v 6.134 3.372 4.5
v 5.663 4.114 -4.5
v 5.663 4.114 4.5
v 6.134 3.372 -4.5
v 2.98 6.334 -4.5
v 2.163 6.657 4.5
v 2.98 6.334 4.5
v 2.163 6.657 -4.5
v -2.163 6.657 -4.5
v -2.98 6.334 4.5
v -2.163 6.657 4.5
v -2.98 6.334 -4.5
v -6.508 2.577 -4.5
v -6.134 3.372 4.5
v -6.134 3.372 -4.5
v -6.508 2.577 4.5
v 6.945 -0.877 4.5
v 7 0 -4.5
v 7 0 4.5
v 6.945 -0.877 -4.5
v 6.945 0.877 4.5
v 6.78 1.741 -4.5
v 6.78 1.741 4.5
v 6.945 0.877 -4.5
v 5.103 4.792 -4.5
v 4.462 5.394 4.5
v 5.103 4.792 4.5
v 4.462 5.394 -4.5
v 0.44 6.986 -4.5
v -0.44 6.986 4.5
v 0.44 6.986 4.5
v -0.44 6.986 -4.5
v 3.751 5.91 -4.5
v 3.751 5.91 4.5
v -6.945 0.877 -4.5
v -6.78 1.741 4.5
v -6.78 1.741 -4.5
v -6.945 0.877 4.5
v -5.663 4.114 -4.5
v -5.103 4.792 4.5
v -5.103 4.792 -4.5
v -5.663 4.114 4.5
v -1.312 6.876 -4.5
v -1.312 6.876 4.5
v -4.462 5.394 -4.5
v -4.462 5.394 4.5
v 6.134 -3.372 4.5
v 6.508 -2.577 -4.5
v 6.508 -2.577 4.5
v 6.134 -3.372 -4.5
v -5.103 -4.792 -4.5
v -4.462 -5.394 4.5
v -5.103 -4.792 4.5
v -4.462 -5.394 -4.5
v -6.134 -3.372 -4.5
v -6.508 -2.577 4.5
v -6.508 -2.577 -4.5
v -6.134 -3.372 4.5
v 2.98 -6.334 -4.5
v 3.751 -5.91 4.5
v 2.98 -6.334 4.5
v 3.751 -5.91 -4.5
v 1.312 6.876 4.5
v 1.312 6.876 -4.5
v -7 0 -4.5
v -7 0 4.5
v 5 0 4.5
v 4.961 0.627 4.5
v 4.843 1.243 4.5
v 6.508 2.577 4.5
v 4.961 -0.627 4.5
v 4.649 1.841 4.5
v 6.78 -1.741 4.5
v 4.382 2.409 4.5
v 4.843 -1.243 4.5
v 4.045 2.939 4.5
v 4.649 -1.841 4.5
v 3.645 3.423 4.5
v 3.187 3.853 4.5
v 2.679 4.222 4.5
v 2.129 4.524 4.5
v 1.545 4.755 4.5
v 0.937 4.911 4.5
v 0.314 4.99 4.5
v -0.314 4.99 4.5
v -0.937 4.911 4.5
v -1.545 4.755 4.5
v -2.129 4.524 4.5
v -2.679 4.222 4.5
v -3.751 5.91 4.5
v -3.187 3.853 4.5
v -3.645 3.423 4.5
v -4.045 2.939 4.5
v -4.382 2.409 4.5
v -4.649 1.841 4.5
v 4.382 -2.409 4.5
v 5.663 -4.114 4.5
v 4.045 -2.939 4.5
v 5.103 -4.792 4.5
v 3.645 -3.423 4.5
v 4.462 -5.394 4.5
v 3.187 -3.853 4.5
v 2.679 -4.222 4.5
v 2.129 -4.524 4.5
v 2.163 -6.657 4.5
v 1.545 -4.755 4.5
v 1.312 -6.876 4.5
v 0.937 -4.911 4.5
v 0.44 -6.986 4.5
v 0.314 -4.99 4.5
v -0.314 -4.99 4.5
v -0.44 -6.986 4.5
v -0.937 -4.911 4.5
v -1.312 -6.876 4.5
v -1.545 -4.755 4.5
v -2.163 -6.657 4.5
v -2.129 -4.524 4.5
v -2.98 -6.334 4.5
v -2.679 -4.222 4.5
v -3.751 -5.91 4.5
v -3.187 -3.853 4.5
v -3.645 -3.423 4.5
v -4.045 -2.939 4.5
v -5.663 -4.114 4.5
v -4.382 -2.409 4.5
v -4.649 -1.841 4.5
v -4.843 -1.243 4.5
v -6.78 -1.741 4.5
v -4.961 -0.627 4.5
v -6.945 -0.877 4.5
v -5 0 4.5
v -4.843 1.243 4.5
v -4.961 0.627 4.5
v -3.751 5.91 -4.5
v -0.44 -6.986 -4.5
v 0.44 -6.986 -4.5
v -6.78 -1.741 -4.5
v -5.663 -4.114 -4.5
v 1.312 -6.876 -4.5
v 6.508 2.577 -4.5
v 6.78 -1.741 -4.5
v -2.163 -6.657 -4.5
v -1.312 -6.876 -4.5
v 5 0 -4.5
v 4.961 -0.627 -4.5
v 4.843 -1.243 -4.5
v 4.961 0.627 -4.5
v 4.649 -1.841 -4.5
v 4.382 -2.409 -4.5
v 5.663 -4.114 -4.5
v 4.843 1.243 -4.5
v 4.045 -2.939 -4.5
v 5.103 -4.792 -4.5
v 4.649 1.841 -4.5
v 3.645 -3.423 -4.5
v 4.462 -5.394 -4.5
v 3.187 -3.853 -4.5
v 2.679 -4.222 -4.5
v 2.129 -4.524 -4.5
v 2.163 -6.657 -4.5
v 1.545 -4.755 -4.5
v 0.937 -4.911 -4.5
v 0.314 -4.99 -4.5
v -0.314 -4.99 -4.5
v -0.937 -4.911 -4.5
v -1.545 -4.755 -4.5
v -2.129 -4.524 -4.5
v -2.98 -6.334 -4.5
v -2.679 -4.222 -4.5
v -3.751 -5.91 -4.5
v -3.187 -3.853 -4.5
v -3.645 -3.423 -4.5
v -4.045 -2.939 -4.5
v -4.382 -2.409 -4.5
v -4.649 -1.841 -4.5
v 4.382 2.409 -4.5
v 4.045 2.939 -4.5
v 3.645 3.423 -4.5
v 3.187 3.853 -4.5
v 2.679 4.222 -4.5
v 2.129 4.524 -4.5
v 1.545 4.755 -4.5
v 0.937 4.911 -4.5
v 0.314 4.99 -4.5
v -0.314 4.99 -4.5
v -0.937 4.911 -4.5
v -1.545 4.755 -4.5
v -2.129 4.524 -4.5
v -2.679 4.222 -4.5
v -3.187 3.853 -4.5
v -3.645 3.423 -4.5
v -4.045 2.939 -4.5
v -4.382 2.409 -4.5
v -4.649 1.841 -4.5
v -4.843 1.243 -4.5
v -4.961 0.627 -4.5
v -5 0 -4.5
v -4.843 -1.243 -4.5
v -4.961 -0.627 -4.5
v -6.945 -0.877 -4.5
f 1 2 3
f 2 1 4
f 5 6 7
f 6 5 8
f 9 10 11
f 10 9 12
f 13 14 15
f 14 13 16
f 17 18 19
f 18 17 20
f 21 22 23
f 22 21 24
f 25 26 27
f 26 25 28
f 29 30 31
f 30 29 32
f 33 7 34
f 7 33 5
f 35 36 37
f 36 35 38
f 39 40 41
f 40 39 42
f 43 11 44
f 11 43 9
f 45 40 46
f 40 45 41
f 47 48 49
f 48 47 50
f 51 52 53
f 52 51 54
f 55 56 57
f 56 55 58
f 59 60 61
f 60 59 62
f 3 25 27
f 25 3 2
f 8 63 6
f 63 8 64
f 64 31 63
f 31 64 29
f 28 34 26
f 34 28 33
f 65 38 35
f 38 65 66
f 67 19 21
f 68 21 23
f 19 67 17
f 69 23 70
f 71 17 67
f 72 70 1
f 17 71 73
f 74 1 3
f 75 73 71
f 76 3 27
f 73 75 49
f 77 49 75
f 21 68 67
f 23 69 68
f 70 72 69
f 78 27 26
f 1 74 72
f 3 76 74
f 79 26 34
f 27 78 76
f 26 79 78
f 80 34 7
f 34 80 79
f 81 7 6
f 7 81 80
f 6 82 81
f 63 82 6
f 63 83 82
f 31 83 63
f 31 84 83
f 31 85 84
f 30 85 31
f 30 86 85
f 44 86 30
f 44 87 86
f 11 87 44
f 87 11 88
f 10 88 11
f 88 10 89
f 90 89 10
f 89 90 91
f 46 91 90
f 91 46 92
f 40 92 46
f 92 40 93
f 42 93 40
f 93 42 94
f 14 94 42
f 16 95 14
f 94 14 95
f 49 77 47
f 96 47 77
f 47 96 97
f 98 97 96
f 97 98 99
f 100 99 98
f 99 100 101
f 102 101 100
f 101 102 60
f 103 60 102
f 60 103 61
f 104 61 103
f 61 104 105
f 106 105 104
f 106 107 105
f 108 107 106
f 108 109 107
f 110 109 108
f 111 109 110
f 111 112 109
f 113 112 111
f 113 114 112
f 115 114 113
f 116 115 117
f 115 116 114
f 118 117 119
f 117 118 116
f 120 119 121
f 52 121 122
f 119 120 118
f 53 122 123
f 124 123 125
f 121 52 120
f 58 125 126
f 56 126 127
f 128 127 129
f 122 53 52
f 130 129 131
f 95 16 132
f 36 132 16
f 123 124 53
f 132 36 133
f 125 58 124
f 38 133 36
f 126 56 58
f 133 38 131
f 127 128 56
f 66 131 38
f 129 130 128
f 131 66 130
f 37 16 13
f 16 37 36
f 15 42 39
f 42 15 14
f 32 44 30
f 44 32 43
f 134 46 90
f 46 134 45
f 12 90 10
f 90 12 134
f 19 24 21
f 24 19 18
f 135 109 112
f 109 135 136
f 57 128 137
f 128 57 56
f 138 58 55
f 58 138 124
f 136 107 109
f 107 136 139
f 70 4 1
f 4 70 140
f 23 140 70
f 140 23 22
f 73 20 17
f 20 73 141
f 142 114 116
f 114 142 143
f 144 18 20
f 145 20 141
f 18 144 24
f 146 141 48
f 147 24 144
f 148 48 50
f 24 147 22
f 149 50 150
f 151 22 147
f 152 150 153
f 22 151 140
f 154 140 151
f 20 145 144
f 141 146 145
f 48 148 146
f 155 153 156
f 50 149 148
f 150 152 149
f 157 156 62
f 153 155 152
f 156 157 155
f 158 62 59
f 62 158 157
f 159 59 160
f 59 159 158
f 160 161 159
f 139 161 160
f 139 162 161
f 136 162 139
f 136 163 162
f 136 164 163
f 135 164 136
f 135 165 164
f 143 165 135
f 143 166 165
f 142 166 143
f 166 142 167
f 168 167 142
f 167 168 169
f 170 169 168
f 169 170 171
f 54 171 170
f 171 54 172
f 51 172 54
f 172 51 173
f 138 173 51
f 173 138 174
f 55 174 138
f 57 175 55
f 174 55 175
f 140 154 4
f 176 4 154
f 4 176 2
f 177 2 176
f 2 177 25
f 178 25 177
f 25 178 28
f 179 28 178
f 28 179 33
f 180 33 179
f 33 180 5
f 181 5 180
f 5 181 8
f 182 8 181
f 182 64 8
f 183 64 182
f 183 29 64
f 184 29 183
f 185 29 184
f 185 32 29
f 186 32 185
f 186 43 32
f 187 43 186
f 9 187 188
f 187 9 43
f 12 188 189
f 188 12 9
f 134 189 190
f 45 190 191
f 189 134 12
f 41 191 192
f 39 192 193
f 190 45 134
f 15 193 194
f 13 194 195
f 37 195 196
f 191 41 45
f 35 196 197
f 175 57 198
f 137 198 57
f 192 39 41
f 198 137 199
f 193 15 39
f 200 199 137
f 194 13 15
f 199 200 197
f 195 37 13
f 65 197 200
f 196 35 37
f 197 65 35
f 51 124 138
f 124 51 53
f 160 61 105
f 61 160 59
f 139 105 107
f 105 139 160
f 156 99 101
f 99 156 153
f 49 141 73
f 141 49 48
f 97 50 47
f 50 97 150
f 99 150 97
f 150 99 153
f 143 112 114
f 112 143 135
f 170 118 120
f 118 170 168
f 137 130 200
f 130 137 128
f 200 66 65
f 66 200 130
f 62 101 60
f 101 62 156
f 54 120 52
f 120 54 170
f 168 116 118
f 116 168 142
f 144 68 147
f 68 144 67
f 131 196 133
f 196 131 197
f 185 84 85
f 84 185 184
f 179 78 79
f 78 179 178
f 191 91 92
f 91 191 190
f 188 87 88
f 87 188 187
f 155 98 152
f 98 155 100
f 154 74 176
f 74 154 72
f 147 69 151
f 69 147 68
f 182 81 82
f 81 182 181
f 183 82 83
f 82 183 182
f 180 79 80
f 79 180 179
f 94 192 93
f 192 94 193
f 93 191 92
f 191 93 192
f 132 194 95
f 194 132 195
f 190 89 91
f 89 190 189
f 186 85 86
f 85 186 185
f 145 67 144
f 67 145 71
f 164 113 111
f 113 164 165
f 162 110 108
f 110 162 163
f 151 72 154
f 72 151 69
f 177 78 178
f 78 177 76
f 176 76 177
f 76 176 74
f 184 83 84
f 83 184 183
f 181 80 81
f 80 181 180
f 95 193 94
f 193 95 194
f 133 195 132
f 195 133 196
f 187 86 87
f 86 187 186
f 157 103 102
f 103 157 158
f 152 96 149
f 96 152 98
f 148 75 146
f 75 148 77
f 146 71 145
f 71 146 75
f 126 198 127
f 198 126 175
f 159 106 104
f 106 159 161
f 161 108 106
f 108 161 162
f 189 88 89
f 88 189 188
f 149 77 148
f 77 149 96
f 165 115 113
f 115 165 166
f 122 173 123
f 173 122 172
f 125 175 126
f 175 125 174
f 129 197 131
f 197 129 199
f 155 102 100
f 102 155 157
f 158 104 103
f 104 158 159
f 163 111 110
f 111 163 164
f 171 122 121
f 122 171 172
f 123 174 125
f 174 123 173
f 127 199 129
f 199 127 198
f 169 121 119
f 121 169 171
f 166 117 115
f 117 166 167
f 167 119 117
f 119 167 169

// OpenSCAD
$fn = 50;


difference() {
	union() {
		translate(v = [0, 0, -4.5000000000]) {
			cylinder(h = 9, r = 7.0000000000);
		}
	}
	union() {
		translate(v = [0, 0, -100.0000000000]) {
			cylinder(h = 200, r = 5);
		}
	}
}
